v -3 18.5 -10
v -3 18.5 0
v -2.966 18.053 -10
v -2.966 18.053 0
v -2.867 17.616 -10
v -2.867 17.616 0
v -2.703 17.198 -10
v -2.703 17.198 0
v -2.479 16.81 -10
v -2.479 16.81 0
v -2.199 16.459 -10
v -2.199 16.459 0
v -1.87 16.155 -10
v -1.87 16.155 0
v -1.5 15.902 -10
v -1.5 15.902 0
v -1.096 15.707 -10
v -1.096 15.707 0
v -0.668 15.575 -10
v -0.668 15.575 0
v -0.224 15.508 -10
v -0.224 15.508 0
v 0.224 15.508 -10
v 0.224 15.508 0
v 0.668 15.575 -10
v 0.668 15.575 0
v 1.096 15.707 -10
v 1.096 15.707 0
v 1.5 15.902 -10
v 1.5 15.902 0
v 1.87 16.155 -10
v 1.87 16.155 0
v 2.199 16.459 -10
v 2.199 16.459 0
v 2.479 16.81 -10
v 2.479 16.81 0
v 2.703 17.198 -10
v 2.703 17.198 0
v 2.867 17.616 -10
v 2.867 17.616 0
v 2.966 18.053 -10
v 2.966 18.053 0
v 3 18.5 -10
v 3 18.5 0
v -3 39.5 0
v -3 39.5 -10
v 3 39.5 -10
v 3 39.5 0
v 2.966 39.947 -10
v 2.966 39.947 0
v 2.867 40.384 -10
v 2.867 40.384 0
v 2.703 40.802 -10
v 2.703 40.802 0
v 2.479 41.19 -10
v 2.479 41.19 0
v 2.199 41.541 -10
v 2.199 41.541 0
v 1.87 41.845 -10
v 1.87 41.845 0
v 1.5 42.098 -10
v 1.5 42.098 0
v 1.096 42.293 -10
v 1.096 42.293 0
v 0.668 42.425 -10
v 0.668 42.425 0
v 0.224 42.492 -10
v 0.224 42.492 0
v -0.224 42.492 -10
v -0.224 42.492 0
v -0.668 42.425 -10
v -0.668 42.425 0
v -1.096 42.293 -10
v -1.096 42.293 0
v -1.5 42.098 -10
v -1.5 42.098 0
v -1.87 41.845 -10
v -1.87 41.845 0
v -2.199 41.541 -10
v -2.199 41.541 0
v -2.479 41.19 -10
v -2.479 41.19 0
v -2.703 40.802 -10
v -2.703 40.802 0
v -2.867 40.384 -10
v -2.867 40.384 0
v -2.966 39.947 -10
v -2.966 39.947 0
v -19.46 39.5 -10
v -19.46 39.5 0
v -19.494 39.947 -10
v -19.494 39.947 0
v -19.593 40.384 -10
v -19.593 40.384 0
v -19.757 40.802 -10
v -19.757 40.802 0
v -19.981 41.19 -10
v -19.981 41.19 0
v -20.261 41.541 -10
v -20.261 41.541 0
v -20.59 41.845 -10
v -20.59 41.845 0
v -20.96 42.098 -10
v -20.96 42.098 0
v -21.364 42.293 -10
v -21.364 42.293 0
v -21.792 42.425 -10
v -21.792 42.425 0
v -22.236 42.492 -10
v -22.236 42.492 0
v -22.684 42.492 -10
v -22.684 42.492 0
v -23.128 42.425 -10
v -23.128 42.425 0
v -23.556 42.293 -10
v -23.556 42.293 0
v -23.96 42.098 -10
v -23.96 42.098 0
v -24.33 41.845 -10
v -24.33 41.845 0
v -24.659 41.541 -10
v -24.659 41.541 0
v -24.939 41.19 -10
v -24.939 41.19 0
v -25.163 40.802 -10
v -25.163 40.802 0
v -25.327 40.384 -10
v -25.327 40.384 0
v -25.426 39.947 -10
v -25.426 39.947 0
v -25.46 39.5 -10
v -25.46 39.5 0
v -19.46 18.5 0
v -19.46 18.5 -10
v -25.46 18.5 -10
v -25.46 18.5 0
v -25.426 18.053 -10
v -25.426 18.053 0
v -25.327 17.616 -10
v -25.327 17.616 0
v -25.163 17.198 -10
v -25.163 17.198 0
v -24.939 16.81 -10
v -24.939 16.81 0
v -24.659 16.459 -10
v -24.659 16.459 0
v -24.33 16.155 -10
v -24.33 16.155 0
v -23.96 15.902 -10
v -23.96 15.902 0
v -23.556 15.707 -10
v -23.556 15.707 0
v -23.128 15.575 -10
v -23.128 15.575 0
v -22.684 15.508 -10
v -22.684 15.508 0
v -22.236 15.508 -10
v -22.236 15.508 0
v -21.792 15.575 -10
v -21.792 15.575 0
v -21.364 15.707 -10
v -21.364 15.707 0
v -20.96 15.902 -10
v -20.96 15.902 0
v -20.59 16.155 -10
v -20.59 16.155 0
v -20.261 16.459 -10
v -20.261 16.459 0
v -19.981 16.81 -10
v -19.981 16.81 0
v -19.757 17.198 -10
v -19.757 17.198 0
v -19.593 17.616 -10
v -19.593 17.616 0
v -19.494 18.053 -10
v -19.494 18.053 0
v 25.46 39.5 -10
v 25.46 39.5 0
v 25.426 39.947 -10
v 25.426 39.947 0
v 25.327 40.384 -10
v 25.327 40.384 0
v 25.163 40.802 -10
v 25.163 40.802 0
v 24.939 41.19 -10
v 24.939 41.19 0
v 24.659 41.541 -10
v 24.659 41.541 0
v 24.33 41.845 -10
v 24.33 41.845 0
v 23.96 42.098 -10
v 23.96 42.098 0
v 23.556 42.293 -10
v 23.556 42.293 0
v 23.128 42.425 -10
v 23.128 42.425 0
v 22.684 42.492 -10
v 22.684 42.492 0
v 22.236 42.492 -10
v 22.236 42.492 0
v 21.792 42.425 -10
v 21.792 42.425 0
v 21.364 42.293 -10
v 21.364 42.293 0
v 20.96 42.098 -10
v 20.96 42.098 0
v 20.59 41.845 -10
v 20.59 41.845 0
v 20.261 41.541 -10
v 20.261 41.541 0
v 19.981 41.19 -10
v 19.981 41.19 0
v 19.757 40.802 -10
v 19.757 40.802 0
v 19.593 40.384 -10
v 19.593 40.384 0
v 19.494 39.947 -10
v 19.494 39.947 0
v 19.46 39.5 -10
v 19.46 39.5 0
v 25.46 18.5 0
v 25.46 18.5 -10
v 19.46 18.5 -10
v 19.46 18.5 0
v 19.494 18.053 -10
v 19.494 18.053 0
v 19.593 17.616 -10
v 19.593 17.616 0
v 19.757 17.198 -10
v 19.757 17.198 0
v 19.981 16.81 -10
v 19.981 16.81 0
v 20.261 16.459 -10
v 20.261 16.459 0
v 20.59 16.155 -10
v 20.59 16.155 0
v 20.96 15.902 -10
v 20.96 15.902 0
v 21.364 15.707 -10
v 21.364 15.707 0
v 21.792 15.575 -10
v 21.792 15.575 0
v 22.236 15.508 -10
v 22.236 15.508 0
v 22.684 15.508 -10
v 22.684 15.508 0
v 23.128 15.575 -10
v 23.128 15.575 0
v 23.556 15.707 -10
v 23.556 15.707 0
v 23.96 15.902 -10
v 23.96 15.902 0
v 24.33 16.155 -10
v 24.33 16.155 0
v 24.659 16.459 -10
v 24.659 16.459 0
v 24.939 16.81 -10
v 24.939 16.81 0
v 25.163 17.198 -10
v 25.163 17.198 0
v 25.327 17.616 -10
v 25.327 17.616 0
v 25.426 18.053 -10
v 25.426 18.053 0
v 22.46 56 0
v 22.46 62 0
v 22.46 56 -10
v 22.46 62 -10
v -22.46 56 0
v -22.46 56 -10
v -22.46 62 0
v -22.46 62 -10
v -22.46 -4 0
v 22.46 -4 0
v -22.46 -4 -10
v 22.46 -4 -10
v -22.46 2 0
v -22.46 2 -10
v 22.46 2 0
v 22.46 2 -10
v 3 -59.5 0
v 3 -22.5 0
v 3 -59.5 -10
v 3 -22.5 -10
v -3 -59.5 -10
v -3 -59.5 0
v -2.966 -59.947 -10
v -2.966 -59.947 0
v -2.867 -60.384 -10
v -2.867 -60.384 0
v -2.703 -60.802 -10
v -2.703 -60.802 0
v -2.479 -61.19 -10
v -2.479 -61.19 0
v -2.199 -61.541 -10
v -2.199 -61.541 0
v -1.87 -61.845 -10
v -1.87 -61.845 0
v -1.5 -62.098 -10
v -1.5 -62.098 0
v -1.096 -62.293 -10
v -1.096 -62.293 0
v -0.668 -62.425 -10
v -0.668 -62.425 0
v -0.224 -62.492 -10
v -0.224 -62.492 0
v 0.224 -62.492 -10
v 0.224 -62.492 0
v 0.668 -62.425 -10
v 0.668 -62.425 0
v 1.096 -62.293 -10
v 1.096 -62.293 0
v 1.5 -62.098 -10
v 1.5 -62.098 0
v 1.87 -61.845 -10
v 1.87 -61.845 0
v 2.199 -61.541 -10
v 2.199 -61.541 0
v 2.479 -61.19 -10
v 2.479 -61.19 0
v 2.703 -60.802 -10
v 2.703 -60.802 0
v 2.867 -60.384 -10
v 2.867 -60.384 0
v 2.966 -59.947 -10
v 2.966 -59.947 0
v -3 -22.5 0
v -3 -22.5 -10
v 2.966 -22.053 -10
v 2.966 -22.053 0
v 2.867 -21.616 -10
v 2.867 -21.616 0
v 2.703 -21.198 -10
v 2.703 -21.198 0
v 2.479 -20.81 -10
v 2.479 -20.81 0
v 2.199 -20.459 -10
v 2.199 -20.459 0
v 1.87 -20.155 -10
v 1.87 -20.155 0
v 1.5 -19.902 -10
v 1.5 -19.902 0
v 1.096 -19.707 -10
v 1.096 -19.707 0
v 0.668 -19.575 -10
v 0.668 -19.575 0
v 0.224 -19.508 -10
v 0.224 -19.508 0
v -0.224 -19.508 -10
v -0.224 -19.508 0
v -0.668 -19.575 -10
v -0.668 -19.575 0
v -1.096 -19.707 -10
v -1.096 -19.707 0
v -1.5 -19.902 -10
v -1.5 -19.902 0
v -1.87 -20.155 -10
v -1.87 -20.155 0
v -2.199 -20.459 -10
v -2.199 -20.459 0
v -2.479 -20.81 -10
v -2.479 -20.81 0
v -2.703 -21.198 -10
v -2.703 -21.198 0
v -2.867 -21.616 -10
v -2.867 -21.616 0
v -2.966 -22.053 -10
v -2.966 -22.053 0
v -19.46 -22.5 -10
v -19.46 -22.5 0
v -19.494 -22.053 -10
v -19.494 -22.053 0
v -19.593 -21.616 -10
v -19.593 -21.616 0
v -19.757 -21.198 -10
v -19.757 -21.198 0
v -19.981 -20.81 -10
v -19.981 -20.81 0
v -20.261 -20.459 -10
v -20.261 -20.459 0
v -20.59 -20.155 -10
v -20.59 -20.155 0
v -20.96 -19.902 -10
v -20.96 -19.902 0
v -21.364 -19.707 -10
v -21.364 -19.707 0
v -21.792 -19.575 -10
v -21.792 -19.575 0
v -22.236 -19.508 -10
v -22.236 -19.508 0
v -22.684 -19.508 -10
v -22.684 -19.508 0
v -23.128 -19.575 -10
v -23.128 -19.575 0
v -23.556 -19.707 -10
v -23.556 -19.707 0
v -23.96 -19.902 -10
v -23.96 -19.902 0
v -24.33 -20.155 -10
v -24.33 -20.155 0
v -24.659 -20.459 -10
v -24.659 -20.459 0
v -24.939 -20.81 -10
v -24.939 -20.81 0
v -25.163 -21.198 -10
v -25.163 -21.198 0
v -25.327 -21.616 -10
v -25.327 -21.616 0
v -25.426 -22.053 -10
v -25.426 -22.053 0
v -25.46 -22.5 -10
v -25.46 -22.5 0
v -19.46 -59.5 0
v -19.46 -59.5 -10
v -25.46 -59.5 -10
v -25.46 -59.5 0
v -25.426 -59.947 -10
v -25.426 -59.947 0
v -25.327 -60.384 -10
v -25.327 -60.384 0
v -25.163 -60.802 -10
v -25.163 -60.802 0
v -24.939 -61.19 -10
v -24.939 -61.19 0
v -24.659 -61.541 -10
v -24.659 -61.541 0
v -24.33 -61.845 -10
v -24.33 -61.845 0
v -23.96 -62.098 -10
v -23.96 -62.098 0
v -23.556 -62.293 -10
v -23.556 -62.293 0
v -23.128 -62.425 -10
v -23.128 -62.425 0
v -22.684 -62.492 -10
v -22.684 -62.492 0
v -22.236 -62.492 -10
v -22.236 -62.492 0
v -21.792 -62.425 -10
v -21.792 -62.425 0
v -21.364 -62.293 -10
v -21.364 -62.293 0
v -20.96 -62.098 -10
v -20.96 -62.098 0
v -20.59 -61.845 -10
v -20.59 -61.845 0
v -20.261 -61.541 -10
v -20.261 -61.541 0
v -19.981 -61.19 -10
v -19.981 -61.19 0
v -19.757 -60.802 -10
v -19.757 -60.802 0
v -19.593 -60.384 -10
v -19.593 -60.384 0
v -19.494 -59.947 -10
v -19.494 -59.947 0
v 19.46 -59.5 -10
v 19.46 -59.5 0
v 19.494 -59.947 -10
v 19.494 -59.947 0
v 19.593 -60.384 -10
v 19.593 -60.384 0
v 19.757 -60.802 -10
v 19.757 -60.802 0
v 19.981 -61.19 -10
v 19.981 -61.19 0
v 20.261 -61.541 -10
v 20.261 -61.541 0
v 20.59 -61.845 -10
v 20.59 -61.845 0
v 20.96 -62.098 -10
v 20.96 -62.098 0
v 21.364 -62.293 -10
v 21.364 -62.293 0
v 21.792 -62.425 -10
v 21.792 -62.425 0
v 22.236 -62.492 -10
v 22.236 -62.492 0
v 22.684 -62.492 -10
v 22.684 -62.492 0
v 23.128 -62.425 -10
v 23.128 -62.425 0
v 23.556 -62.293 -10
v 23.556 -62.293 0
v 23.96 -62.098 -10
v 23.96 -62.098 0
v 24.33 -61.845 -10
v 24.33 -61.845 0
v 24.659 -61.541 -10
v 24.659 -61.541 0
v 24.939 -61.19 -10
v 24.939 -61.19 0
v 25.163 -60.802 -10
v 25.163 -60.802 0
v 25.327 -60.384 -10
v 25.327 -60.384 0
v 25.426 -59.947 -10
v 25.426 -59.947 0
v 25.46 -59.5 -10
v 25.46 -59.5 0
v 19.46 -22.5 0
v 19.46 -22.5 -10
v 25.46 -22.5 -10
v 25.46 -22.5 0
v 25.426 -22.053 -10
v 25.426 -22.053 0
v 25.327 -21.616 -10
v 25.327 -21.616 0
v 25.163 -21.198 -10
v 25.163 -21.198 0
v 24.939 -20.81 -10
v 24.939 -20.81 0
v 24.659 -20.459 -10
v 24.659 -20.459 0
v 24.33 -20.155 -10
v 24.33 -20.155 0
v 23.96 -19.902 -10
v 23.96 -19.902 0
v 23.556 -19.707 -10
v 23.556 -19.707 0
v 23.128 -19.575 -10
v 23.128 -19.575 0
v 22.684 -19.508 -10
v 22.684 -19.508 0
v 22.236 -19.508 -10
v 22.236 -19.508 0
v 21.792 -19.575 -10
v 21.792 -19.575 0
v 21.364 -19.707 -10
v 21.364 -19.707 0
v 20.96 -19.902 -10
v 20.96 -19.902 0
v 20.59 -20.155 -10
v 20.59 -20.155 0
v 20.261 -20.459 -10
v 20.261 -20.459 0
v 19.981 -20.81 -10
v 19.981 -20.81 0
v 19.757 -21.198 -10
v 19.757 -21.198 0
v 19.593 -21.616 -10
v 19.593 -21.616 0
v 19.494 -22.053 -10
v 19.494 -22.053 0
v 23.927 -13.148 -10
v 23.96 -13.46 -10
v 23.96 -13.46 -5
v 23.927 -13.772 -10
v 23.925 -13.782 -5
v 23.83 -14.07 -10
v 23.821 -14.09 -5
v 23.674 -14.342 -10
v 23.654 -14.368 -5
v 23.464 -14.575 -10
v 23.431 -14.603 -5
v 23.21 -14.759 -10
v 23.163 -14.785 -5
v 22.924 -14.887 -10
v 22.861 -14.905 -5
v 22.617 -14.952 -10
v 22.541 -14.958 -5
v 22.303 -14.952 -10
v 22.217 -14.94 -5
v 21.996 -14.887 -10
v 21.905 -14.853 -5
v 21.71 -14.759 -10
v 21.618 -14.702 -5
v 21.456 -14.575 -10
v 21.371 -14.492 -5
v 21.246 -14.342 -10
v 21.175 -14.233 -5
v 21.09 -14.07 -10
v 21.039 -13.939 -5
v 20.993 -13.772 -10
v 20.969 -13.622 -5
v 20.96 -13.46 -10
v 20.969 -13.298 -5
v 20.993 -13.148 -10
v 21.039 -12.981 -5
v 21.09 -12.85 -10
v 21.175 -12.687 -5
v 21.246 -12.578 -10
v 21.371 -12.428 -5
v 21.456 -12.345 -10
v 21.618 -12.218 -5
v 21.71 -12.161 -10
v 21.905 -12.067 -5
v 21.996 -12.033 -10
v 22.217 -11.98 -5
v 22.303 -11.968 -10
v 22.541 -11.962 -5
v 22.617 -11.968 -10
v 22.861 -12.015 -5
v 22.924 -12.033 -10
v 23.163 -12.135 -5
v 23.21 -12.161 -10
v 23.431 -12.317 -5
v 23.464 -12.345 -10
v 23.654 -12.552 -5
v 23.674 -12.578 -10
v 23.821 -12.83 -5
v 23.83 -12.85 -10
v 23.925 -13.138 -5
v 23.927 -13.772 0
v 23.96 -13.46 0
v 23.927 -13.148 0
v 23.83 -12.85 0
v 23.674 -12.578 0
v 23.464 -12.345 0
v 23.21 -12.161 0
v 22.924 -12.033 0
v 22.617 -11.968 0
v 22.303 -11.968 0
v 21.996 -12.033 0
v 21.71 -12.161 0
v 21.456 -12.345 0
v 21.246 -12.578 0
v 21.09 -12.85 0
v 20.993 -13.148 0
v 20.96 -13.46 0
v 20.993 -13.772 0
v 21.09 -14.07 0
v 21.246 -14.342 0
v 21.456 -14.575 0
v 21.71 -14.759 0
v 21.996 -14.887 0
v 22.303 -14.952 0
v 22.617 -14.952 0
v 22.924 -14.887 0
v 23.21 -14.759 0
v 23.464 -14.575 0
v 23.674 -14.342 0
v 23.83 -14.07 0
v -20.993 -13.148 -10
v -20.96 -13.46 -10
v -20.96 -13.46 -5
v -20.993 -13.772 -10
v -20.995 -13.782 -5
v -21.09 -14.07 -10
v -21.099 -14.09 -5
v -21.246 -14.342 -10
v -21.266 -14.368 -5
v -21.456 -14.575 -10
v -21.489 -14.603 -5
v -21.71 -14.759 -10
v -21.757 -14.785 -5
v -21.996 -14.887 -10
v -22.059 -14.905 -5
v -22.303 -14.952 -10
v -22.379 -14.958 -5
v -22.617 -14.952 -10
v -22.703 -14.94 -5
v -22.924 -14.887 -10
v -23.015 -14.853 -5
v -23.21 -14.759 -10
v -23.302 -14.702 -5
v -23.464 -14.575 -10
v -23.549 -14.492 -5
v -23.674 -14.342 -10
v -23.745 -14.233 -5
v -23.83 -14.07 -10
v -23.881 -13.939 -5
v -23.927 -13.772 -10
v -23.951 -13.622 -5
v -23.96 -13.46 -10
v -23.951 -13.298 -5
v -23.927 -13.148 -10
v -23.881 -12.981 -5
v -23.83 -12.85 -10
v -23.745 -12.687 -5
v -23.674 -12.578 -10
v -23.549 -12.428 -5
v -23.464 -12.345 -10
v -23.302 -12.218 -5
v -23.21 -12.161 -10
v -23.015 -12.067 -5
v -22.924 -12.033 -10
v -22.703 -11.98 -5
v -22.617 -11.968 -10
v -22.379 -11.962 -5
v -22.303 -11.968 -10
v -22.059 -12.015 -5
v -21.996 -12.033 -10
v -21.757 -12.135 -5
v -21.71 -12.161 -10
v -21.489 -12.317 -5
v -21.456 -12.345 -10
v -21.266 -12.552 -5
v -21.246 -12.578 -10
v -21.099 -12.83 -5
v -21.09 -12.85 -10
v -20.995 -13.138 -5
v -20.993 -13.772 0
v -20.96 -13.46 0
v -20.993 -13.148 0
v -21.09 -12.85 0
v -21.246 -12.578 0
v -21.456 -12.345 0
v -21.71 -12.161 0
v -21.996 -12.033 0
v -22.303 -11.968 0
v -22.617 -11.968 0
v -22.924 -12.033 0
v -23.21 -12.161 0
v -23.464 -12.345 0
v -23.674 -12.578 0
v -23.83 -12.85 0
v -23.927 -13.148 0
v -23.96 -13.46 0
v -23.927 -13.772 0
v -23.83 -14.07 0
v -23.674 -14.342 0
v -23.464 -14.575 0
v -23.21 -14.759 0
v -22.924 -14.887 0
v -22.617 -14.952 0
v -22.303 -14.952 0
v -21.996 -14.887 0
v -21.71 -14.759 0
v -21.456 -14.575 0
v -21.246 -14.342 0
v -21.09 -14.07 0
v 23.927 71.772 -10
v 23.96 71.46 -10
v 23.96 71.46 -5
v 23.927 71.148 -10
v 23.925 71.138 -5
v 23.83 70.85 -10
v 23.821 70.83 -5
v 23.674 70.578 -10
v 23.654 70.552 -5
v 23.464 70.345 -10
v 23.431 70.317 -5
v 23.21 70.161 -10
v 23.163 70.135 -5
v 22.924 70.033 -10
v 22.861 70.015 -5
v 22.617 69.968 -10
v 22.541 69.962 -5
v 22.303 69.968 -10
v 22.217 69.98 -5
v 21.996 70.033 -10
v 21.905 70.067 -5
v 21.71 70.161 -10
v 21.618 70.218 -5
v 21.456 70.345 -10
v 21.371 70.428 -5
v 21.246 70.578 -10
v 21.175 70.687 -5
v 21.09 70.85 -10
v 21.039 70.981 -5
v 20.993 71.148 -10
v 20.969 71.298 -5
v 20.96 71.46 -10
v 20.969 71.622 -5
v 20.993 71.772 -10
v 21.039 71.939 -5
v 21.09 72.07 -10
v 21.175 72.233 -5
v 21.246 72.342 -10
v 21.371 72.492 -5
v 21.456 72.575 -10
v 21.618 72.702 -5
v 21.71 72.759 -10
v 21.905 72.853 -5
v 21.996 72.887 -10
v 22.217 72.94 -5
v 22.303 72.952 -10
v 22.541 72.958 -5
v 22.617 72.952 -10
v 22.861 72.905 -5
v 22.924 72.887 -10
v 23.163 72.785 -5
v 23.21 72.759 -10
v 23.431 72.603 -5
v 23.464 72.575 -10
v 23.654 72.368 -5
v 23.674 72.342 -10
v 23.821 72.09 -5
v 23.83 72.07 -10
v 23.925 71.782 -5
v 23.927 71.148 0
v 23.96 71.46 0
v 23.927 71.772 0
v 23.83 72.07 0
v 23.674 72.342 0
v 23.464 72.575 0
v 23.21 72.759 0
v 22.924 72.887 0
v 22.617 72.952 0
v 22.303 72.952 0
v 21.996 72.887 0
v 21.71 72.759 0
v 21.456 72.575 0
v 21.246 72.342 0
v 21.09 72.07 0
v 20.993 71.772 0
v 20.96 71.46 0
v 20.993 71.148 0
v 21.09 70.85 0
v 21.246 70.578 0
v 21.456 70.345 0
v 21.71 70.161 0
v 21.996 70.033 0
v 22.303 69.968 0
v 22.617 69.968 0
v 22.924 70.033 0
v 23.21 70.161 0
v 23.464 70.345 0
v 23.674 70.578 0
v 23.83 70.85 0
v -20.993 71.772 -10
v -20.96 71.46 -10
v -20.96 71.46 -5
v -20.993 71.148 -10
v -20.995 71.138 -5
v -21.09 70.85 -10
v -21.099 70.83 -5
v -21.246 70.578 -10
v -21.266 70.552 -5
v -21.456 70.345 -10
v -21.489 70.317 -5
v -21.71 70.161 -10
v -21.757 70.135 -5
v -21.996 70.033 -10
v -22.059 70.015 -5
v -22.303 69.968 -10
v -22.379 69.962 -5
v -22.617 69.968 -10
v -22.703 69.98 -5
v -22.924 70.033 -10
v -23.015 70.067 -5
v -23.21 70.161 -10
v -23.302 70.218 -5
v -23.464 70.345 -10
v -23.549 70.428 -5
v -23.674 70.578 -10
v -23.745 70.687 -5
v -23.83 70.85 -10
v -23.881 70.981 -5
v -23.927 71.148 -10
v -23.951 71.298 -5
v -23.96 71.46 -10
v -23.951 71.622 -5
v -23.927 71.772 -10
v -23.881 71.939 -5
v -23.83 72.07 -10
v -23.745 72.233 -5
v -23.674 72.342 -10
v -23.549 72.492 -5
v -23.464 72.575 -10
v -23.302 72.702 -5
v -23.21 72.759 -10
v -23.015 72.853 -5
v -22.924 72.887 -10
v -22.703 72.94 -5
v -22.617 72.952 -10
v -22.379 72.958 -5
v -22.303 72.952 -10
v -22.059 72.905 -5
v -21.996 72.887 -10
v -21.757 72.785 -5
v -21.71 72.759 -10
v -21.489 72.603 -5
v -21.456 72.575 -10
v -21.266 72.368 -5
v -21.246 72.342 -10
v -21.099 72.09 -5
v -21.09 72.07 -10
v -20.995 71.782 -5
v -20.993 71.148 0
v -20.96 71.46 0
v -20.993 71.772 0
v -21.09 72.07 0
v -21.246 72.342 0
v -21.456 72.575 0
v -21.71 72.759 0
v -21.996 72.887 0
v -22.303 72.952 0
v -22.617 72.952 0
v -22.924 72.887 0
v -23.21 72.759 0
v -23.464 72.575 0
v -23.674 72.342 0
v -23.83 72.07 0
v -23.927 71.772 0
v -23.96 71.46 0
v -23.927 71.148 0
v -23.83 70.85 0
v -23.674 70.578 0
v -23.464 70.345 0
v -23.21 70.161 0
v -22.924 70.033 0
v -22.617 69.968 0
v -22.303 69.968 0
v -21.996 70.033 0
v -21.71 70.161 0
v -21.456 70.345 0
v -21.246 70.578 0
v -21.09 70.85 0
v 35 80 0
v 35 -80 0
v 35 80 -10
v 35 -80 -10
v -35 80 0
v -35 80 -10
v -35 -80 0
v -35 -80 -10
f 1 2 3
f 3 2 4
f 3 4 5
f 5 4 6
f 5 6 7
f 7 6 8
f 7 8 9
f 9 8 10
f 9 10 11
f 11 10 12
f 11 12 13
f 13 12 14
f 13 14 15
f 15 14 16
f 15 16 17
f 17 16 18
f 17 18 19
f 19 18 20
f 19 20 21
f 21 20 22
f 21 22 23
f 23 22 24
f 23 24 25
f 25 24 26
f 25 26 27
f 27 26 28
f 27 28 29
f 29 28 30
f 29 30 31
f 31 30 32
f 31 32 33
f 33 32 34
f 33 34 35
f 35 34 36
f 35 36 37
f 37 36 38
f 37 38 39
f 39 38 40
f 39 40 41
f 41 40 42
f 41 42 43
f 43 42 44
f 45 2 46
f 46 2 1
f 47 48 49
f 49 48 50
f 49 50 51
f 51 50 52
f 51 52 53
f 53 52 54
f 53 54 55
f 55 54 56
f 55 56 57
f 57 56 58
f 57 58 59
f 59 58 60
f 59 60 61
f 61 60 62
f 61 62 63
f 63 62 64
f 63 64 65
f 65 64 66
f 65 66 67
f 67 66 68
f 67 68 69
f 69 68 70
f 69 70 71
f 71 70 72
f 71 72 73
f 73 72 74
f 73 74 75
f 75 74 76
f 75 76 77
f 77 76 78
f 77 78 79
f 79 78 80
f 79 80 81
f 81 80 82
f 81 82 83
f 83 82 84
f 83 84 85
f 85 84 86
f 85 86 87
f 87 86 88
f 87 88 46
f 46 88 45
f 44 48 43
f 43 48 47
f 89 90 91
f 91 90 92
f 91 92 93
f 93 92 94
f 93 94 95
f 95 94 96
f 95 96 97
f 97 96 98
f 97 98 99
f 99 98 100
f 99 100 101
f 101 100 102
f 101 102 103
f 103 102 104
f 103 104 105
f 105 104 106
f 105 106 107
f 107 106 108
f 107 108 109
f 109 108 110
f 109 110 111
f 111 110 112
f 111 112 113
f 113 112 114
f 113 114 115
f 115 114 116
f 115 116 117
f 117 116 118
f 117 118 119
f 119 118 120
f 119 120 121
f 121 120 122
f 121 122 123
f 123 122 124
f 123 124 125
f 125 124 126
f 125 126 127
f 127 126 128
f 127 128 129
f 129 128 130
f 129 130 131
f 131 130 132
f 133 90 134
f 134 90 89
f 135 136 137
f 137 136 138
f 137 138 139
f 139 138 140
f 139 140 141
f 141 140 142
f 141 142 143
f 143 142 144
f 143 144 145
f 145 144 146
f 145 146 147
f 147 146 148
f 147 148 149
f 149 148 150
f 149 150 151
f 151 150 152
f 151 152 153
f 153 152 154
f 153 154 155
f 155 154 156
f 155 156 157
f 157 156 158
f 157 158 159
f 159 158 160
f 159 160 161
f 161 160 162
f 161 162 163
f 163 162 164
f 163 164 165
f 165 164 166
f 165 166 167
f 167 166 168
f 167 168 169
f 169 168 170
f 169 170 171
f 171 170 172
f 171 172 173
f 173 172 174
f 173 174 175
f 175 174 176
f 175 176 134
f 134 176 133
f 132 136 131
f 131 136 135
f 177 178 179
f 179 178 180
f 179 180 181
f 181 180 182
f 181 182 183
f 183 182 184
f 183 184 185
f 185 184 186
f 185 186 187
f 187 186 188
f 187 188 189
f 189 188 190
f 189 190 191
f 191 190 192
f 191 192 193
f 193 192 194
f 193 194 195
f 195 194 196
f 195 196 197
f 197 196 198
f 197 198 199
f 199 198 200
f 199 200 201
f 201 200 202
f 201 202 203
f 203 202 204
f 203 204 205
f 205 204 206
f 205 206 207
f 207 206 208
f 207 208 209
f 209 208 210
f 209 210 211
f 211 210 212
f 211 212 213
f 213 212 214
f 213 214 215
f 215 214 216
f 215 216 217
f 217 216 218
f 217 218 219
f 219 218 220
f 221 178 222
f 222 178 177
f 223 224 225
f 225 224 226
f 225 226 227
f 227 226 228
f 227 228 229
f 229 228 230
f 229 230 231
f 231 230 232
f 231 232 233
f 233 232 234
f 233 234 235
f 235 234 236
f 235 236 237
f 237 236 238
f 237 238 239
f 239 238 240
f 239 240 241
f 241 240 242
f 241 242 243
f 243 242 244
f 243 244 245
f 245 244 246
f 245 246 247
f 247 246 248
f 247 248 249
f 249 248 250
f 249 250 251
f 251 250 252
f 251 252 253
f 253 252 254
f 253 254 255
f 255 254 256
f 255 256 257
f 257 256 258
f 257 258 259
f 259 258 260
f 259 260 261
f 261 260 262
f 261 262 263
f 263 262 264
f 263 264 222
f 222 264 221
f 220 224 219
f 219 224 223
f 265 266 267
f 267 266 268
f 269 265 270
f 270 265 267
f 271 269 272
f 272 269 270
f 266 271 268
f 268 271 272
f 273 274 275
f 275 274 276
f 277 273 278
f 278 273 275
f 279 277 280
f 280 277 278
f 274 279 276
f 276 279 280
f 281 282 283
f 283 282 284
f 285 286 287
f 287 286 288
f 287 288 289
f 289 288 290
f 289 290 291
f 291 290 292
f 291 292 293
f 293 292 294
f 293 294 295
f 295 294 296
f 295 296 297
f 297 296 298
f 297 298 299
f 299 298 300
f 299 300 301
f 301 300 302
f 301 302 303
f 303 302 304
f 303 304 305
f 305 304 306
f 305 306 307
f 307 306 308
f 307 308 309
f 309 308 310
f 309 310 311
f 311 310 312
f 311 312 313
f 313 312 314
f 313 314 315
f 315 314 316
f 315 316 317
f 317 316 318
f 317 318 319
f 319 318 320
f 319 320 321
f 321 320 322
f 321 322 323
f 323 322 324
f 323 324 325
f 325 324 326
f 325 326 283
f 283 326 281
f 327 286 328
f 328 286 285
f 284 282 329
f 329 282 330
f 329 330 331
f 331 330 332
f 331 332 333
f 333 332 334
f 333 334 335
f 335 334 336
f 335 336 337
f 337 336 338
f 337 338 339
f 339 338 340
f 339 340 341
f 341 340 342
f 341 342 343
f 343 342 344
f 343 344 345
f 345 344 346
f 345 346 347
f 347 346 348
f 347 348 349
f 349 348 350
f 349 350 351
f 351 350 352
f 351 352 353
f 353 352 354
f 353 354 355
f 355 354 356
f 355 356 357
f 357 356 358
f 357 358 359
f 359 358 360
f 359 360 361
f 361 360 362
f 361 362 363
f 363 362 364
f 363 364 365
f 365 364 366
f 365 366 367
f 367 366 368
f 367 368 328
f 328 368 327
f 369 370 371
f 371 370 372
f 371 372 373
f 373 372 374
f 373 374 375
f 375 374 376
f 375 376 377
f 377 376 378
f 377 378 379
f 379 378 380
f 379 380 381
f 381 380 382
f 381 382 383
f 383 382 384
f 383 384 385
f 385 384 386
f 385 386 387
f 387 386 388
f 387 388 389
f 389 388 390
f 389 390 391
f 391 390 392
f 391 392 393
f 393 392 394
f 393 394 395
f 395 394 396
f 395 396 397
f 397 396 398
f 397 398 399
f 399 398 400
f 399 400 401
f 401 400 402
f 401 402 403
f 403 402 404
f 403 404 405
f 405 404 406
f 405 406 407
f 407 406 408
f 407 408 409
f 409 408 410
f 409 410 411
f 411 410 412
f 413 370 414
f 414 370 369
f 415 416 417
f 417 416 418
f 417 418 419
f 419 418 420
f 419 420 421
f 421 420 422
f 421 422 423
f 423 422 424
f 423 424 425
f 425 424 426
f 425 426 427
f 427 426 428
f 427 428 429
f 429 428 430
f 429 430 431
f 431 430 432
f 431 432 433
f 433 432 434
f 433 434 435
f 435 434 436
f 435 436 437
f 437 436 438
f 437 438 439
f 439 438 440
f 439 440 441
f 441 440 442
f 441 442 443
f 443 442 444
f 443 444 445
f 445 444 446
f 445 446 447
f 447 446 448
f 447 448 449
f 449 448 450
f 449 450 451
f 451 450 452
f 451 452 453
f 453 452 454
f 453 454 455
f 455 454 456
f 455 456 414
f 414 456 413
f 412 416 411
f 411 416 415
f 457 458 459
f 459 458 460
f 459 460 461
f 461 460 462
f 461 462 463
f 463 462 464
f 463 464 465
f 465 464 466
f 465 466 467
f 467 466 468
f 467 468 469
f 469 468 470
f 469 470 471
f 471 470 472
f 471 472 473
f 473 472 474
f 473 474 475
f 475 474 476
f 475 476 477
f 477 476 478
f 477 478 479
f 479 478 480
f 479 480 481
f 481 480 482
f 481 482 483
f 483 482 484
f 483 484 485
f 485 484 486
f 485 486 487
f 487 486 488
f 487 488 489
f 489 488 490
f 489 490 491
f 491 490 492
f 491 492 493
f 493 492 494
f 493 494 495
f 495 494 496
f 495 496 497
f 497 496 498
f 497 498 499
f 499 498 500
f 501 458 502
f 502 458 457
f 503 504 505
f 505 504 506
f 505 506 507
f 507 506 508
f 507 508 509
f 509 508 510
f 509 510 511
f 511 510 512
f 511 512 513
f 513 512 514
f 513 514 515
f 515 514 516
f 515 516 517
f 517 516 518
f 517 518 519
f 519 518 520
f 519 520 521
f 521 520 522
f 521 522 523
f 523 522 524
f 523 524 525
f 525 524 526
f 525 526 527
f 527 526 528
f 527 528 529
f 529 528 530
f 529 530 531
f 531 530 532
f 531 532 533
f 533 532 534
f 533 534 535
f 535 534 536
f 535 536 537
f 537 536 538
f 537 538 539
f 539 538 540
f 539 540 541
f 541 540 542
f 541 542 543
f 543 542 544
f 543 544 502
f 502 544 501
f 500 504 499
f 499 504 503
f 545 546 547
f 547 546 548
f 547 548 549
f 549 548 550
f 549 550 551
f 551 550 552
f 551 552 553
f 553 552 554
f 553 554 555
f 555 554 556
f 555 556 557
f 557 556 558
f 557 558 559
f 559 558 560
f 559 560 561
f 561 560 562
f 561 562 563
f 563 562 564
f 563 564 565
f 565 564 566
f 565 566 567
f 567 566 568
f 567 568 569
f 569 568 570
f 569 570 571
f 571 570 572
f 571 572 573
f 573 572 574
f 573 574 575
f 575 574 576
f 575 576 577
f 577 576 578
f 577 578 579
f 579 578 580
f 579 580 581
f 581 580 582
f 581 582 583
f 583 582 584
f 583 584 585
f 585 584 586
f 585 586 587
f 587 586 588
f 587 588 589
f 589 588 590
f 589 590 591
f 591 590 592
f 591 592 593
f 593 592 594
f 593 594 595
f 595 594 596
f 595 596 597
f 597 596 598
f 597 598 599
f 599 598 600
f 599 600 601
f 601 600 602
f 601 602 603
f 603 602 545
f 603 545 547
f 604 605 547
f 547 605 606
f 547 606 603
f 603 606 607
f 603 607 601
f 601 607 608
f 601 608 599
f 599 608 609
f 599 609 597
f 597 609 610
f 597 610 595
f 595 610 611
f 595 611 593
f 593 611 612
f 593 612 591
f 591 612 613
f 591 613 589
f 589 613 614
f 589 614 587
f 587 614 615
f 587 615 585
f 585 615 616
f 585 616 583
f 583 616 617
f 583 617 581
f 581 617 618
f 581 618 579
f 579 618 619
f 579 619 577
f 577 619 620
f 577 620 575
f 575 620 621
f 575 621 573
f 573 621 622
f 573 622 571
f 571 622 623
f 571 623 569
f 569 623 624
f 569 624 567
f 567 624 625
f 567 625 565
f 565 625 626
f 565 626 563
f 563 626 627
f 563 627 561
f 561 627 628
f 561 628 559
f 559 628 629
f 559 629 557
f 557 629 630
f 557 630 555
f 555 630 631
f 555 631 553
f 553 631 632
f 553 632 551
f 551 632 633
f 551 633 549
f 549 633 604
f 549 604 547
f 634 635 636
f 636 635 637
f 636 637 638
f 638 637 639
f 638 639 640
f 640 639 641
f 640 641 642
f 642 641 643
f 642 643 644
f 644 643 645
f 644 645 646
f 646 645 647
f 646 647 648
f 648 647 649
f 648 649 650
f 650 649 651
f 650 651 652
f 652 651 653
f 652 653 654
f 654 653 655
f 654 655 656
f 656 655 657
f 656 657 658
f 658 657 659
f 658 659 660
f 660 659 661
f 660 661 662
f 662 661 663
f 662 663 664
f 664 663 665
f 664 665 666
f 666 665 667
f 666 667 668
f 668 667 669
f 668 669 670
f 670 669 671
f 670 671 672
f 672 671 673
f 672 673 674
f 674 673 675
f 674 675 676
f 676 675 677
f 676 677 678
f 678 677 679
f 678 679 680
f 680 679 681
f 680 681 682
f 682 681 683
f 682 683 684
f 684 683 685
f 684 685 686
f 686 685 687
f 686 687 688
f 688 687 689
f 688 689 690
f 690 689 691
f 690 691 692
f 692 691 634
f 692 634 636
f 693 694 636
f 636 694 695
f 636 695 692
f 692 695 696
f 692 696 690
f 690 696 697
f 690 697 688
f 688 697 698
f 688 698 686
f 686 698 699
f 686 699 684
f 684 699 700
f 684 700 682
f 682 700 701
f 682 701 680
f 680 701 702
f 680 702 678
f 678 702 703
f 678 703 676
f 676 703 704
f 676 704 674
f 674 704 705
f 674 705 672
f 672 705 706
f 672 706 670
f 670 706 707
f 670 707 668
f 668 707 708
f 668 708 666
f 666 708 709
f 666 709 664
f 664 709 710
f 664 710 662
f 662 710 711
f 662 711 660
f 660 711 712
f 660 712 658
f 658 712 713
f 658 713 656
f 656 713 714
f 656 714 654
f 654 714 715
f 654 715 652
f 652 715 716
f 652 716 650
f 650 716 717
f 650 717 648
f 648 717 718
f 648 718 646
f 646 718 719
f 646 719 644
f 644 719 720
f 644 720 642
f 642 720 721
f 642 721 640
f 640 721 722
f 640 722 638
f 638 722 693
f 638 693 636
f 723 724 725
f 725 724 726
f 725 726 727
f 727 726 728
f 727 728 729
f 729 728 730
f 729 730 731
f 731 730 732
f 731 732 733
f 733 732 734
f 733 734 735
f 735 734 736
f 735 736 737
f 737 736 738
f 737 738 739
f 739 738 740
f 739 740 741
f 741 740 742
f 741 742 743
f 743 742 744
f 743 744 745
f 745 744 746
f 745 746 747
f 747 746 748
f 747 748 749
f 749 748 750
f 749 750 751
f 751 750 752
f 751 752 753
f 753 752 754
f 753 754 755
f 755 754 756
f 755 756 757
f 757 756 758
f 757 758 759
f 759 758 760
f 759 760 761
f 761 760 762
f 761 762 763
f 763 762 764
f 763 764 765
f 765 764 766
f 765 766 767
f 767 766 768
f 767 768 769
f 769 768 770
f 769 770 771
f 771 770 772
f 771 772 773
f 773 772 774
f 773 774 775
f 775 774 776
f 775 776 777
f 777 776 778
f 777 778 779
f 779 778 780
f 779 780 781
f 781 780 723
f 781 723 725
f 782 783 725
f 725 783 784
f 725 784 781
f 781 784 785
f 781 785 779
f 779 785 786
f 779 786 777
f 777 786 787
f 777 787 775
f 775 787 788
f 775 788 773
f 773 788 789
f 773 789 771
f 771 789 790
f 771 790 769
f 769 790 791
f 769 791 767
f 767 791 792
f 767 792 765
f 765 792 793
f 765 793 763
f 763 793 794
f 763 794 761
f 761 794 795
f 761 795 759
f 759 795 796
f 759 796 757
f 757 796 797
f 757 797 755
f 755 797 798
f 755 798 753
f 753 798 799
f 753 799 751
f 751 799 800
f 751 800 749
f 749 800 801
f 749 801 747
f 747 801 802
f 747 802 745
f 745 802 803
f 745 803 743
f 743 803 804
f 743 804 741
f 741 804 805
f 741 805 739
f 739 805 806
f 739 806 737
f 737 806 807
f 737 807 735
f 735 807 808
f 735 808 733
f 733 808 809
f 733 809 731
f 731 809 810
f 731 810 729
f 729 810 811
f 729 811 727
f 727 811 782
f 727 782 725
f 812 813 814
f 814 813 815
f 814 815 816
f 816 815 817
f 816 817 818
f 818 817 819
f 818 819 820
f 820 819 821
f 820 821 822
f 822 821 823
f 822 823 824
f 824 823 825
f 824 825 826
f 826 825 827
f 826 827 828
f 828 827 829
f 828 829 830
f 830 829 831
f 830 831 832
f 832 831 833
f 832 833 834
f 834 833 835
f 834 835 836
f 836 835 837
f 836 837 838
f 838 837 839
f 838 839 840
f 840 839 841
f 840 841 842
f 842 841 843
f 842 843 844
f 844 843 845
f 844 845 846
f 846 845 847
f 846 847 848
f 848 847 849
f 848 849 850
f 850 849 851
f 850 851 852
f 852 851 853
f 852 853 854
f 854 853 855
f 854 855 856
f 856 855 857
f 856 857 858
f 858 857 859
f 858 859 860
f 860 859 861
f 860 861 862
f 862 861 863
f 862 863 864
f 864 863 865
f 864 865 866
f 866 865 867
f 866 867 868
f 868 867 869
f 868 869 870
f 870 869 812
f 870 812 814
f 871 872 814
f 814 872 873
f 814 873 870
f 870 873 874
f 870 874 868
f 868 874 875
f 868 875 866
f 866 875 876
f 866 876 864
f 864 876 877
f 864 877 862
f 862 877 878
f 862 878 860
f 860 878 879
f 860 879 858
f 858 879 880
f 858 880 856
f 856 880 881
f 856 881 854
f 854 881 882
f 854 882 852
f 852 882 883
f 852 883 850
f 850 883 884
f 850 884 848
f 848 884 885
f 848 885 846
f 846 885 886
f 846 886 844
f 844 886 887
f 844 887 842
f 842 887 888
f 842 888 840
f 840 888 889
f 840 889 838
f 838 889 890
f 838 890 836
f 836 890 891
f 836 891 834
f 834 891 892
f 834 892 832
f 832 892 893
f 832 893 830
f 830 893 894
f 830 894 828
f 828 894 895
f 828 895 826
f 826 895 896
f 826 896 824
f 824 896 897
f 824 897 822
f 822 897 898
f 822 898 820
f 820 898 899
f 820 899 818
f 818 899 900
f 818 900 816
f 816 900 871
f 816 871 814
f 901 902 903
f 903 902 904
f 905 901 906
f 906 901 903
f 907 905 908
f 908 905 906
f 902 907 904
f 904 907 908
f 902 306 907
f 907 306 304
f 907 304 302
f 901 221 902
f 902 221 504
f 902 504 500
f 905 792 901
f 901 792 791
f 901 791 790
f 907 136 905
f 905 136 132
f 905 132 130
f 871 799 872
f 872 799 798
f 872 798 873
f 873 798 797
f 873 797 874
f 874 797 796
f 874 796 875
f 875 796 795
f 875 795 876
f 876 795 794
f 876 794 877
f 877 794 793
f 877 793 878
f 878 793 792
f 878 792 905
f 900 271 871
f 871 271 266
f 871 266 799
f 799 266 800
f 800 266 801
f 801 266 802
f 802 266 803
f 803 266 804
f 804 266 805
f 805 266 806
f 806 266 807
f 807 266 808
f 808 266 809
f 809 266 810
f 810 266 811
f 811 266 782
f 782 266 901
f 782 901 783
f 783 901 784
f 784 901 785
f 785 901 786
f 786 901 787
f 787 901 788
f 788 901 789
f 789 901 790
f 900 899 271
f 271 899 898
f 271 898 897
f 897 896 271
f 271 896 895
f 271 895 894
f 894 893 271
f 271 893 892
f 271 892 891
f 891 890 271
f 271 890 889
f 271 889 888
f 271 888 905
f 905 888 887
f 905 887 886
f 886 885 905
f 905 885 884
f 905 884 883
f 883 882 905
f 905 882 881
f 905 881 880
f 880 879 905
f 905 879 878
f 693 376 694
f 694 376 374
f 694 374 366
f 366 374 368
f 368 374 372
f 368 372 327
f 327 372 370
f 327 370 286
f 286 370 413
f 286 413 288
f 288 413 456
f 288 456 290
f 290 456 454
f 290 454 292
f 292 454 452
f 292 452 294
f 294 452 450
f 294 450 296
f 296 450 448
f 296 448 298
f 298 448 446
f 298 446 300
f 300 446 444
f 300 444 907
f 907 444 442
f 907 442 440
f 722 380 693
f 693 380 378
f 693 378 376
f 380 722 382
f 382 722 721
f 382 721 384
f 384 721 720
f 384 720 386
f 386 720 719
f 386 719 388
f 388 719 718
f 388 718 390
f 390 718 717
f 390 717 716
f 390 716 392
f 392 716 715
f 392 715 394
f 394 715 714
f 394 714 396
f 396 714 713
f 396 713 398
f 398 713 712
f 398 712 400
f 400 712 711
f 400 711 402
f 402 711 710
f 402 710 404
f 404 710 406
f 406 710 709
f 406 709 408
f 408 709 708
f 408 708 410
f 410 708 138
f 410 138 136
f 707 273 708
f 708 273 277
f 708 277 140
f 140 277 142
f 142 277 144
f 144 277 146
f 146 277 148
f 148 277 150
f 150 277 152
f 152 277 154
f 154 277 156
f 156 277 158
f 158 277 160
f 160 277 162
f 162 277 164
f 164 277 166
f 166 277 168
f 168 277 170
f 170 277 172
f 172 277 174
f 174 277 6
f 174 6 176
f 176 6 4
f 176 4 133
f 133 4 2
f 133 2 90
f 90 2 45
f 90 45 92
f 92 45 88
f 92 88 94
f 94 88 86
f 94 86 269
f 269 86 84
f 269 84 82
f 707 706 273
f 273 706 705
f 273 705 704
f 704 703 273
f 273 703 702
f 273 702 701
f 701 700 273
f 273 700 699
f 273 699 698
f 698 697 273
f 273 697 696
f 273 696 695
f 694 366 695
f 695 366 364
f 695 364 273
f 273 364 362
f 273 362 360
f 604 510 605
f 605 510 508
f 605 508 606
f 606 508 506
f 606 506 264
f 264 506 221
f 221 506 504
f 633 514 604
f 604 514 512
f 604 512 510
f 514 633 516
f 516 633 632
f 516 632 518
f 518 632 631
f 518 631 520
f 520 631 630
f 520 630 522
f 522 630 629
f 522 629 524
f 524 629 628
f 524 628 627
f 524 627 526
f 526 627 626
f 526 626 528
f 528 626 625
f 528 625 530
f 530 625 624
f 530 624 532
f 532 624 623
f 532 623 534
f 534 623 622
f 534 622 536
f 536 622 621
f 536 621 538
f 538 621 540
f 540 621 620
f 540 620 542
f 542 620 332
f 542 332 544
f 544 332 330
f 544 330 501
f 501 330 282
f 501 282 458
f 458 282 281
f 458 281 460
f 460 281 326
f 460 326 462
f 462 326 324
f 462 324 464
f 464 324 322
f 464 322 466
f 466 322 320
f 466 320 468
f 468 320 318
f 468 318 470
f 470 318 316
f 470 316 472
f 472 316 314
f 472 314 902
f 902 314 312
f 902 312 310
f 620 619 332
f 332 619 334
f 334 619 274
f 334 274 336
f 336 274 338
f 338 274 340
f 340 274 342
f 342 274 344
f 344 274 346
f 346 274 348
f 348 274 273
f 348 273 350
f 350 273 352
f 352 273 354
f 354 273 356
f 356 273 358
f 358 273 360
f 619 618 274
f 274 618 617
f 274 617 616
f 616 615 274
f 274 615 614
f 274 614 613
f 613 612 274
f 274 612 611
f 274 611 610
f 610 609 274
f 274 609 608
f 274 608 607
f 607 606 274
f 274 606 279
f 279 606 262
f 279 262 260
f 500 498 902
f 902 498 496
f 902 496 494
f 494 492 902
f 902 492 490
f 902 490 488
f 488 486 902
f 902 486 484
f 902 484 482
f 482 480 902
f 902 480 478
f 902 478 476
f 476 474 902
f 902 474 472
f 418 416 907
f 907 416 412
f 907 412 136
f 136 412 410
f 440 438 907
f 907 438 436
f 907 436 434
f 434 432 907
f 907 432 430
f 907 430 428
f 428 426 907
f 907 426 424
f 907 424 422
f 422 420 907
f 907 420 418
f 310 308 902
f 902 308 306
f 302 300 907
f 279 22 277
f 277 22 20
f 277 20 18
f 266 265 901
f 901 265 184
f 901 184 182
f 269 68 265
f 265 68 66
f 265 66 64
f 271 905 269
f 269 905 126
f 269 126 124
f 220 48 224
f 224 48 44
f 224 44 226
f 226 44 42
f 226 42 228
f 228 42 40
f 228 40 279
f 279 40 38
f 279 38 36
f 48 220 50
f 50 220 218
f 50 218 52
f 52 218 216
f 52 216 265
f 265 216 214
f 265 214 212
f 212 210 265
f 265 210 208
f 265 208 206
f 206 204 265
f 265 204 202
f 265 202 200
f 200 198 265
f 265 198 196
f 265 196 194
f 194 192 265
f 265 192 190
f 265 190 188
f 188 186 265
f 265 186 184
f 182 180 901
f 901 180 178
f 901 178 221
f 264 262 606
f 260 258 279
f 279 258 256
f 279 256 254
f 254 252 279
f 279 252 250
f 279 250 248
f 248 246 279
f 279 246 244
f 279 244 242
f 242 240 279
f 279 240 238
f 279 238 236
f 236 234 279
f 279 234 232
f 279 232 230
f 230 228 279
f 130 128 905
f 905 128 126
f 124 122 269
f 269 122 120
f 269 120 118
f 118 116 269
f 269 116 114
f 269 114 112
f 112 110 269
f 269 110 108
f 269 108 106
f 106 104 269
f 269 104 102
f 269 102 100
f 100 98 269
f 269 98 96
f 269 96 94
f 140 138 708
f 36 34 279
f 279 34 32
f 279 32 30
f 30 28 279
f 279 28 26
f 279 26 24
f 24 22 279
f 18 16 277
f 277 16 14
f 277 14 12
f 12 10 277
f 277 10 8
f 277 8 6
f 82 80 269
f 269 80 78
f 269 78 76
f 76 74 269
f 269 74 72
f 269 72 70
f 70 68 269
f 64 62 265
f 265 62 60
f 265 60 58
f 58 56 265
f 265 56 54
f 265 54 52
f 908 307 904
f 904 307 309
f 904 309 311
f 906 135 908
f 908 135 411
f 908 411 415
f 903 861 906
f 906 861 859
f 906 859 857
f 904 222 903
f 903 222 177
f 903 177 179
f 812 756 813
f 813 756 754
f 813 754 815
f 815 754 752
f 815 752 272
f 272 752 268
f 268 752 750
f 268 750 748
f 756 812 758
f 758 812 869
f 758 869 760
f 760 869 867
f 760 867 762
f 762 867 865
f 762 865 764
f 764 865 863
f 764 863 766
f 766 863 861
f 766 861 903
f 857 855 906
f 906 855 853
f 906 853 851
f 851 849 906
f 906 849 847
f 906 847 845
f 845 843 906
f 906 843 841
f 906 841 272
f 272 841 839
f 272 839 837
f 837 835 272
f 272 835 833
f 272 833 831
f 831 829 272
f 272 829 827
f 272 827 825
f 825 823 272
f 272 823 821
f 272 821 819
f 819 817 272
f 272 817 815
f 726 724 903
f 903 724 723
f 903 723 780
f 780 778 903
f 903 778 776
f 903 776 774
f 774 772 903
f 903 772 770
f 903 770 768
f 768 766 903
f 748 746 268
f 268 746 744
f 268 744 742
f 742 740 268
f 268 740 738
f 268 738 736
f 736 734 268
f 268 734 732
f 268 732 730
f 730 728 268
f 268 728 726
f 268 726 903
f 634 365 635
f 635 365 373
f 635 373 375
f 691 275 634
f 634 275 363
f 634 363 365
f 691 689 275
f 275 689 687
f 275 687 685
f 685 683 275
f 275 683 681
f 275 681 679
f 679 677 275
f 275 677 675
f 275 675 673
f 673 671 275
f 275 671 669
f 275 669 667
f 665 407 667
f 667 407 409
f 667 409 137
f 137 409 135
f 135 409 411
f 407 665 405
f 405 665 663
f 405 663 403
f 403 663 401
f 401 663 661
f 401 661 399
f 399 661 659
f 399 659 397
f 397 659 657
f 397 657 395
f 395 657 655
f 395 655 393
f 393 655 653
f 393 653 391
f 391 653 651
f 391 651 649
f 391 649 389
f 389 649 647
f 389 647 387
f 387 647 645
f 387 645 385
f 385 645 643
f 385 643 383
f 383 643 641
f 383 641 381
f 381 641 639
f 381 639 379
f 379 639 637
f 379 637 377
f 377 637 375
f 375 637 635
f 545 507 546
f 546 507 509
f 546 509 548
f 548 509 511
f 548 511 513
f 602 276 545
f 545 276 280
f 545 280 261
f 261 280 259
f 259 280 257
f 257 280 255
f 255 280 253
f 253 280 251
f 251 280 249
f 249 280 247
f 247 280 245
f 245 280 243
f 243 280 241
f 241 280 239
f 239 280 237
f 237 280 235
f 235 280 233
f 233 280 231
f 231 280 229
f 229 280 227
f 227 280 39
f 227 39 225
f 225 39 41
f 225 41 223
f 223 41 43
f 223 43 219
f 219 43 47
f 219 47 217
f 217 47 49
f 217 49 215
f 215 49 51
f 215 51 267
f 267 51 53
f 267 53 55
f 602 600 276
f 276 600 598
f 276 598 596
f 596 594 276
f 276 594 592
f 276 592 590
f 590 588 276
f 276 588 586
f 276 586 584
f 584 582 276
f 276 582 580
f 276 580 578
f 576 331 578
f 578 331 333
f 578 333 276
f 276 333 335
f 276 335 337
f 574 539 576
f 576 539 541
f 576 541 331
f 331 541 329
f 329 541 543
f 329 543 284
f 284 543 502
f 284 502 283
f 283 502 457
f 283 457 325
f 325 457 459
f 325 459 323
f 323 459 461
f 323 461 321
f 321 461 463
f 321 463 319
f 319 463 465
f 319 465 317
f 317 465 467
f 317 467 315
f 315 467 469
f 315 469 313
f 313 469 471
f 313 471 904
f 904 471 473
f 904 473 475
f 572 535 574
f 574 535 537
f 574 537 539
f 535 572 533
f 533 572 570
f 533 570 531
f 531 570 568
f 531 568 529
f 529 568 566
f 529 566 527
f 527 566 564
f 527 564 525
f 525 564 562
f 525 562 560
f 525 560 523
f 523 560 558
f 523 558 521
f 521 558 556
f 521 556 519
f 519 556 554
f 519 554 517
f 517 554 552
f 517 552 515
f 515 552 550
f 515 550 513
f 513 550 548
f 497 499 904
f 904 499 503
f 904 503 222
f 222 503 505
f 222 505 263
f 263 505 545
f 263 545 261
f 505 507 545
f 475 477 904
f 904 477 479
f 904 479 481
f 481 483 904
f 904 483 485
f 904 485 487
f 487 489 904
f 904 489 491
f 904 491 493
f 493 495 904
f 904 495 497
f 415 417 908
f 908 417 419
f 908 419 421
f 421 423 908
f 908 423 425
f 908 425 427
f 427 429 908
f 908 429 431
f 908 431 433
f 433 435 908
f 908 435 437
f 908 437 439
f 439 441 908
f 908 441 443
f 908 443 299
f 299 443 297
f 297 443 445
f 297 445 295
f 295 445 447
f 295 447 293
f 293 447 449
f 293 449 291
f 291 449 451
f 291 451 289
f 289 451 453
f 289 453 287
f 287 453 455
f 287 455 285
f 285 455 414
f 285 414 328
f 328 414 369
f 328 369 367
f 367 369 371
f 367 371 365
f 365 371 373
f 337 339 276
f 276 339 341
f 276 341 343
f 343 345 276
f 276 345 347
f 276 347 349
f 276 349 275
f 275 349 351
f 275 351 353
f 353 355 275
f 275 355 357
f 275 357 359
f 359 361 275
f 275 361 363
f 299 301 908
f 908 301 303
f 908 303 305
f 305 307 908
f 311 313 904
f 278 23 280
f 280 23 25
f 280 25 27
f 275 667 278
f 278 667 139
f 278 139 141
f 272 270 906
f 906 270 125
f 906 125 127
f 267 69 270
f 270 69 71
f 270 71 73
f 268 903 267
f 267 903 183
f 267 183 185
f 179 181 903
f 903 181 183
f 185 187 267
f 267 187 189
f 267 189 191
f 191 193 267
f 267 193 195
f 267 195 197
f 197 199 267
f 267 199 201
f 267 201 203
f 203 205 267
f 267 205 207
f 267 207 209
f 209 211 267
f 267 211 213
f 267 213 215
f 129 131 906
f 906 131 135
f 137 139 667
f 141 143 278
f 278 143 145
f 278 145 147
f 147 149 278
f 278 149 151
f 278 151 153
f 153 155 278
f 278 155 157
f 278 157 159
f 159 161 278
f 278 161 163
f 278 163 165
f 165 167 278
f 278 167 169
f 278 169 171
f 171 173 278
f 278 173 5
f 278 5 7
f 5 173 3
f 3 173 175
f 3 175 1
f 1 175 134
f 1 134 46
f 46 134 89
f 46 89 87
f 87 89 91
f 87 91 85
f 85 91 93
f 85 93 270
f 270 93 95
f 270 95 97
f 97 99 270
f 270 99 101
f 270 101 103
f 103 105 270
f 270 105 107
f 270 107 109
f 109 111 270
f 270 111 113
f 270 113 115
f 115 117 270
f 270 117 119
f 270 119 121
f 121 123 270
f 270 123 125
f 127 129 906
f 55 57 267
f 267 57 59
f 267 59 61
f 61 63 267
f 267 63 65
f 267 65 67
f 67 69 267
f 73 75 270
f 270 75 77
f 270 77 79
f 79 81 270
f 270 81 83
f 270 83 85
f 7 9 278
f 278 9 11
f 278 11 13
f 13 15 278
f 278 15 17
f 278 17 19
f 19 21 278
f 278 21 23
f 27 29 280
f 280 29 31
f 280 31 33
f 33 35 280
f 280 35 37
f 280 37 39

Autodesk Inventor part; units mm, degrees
ref_plane "YZ Plane" through (0, 0, 0) normal (1, 0, 0) x (0, 1, 0)
ref_plane "XZ Plane" through (0, 0, 0) normal (0, 1, 0) x (-1, 0, 0)
ref_plane "XY Plane" through (0, 0, 0) normal (0, 0, 1) x (1, 0, 0)
sketch "Sketch1" plane through (0, 0, 0) normal (0, 0, 1) x (1, 0, 0)
  line L0 (-35, 80) -> (35, 80)
  line L1 (35, 80) -> (35, -80)
  line L2 (35, -80) -> (-35, -80)
  line L3 (-35, -80) -> (-35, 80)
  line L4 (-35, 80) -> (35, -80) construction
  line L5 (35, 80) -> (-35, -80) construction
  circle A0 centre (-22.46, 71.46) radius 1.5
  circle A1 centre (22.46, 71.46) radius 1.5
  circle A2 centre (-22.46, -13.46) radius 1.5
  circle A3 centre (22.46, -13.46) radius 1.5
  line L6 (0, 18.5) -> (0, 39.5) construction
  line L7 (-3, 18.5) -> (-3, 39.5)
  line L8 (3, 39.5) -> (3, 18.5)
  arc A4 (-3, 18.5) -> (3, 18.5) centre (0, 18.5) ccw
  arc A5 (3, 39.5) -> (-3, 39.5) centre (0, 39.5) ccw
  line L9 (-11.23, 0) -> (-11.23, 80) construction
  line L10 (-19.46, 18.5) -> (-19.46, 39.5)
  line L11 (-25.46, 39.5) -> (-25.46, 18.5)
  arc A6 (-25.46, 18.5) -> (-19.46, 18.5) centre (-22.46, 18.5) ccw
  arc A7 (-19.46, 39.5) -> (-25.46, 39.5) centre (-22.46, 39.5) ccw
  line L12 (11.23, 5) -> (11.23, 80) construction
  line L13 (25.46, 18.5) -> (25.46, 39.5)
  line L14 (19.46, 39.5) -> (19.46, 18.5)
  arc A8 (19.46, 18.5) -> (25.46, 18.5) centre (22.46, 18.5) ccw
  arc A9 (25.46, 39.5) -> (19.46, 39.5) centre (22.46, 39.5) ccw
  line L15 (-22.46, 62) -> (22.46, 62)
  line L16 (22.46, 62) -> (22.46, 56)
  line L17 (22.46, 56) -> (-22.46, 56)
  line L18 (-22.46, 56) -> (-22.46, 62)
  line L19 (-22.46, 62) -> (22.46, 56) construction
  line L20 (22.46, 62) -> (-22.46, 56) construction
  line L21 (0, 29) -> (-22.46, 29) construction
  line L22 (-22.46, -4) -> (22.46, -4)
  line L23 (22.46, -4) -> (22.46, 2)
  line L24 (22.46, 2) -> (-22.46, 2)
  line L25 (-22.46, 2) -> (-22.46, -4)
  line L26 (0, -22.5) -> (0, -59.5) construction
  line L27 (-3, -22.5) -> (-3, -59.5)
  line L28 (3, -59.5) -> (3, -22.5)
  arc A10 (3, -22.5) -> (-3, -22.5) centre (0, -22.5) ccw
  arc A11 (-3, -59.5) -> (3, -59.5) centre (0, -59.5) ccw
  line L29 (-19.46, -22.5) -> (-19.46, -59.5)
  line L30 (-25.46, -59.5) -> (-25.46, -22.5)
  arc A12 (-19.46, -22.5) -> (-25.46, -22.5) centre (-22.46, -22.5) ccw
  arc A13 (-25.46, -59.5) -> (-19.46, -59.5) centre (-22.46, -59.5) ccw
  line L31 (25.46, -22.5) -> (25.46, -59.5)
  line L32 (19.46, -59.5) -> (19.46, -22.5)
  arc A14 (25.46, -22.5) -> (19.46, -22.5) centre (22.46, -22.5) ccw
  arc A15 (19.46, -59.5) -> (25.46, -59.5) centre (22.46, -59.5) ccw
  point P0 (0, 0)
  point P1 (0, 59)
  point P2 (0, -41)
  dimension "d0" = 3
  dimension "d1" = 22.46
  dimension "d2" = 8.54
  dimension "d5" = 44.92
  dimension "d8" = 84.92
  dimension "d11" = 160
  dimension "d12" = 70
  dimension "d13" = 42.46
  dimension "d14" = 31.96
  dimension "d15" = 22.46
  dimension "d16" = 3
  dimension "d17" = 11.23
  dimension "d18" = 22.46
  dimension "d19" = 44.92
  dimension "d20" = 6
  dimension "d21" = 59
  dimension "d22" = 22.5
  dimension "d23" = 37
  dimension "d24" = 6
  dimension "d25" = 75
  dimension "d26" = 80
  dimension "d27" = 57.46
extrude "Extrusion1" add sketch "Sketch1" against normal blind 10
properties part number "bay_mid"
